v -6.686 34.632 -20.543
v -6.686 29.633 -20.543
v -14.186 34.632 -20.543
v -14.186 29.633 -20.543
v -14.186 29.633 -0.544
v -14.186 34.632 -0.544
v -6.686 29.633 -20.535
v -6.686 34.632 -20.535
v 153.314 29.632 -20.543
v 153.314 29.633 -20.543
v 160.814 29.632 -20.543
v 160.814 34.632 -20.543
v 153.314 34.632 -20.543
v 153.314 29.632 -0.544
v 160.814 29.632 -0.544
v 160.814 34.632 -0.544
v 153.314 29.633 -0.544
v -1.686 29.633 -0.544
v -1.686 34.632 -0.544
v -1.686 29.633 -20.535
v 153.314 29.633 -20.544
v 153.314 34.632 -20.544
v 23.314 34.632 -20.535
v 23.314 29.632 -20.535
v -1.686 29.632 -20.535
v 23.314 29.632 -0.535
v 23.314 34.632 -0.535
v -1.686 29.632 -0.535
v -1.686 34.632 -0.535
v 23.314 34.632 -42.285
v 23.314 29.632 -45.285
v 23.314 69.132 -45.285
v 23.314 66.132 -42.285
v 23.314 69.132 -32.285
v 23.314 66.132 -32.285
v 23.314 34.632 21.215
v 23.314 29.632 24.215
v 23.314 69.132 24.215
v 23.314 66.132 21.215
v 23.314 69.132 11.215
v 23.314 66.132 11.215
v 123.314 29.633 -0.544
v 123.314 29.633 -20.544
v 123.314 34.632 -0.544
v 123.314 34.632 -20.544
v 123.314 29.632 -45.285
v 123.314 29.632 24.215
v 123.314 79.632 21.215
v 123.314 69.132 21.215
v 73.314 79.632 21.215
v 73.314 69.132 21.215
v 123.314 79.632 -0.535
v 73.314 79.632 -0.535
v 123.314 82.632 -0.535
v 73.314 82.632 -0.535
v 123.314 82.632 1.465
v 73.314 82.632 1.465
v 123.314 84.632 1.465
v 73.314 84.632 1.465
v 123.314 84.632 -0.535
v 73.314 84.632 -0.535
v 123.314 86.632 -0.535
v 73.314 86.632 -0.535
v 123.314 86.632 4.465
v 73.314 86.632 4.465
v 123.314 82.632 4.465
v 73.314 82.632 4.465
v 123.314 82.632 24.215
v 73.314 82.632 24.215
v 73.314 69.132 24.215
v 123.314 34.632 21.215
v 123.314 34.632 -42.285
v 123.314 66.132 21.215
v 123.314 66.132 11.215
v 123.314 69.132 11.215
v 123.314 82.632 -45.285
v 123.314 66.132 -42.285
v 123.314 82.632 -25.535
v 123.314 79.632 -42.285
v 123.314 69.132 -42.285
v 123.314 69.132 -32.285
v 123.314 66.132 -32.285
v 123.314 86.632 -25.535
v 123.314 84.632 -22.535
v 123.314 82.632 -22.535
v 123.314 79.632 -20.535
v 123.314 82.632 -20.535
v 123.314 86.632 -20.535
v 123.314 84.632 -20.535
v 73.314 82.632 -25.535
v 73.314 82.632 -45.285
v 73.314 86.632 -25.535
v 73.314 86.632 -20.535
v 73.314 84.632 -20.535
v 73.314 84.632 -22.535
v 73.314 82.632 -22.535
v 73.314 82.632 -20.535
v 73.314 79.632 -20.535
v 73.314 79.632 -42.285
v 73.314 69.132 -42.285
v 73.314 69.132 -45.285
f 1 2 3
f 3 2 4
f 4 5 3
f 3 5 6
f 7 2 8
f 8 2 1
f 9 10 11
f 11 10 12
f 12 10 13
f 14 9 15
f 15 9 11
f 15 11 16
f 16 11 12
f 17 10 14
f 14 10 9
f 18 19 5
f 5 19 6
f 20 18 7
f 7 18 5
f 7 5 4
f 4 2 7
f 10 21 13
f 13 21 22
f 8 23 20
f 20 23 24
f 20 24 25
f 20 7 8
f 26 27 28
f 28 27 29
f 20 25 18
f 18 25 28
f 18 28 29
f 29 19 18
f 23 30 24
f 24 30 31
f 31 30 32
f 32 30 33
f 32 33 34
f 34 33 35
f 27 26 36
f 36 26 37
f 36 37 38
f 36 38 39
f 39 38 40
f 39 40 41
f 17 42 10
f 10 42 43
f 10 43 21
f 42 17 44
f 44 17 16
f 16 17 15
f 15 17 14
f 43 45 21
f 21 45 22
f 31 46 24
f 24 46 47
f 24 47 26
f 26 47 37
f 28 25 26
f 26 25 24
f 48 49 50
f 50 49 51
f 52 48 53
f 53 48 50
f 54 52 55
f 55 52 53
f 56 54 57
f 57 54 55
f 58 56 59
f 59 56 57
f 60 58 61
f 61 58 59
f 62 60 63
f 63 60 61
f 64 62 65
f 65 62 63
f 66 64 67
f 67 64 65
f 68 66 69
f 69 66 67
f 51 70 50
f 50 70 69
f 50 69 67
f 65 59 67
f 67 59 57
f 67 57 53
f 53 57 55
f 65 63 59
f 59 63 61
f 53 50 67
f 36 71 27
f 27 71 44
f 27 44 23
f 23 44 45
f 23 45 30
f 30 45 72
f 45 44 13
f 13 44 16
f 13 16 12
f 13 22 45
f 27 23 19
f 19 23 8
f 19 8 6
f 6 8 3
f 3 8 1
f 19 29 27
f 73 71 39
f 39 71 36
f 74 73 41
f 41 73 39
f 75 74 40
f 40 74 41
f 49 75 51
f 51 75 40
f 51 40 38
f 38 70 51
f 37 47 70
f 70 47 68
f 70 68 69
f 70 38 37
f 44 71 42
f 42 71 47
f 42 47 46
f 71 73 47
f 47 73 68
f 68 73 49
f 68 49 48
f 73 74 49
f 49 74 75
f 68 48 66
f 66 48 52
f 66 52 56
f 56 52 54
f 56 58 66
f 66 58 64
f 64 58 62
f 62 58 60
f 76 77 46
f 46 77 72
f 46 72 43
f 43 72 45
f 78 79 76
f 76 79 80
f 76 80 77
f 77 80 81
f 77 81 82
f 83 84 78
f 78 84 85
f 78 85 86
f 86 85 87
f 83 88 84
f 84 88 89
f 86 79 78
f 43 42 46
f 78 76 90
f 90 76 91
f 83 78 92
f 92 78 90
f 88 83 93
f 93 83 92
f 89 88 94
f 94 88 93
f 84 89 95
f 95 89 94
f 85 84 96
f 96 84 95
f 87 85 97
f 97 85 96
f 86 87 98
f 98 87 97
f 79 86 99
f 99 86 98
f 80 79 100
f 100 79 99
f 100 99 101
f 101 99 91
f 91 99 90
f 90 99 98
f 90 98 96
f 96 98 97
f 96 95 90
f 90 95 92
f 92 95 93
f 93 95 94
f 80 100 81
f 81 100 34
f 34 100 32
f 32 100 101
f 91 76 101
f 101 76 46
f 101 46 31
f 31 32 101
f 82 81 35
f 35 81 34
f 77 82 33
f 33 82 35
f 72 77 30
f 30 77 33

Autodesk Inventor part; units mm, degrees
ref_plane "YZ Plane" through (0, 0, 0) normal (1, 0, 0) x (0, 1, 0)
ref_plane "Piano di lavoro9" through (123.3139, -0.0528, 92.5382) normal (1, 0, 0) x (0, 0, -1)
sketch "Schizzo5" plane through (123.3139, -0.0528, 92.5382) normal (1, 0, 0) x (0, 0, -1)
  line L0 (71.3231, 66.1847) -> (134.8231, 66.1847)
  line L1 (134.8231, 66.1847) -> (134.8231, 34.6847)
  line L2 (134.8231, 34.6847) -> (71.3231, 34.6847)
  line L3 (71.3231, 34.6847) -> (71.3231, 66.1847)
  line L4 (71.3231, 34.6847) -> (81.3231, 34.6847)
  line L5 (81.3231, 34.6847) -> (81.3231, 29.6847)
  line L6 (81.3231, 29.6847) -> (71.3231, 29.6847)
  line L7 (134.8231, 34.6847) -> (124.8231, 34.6847)
  line L8 (124.8231, 34.6847) -> (124.8231, 29.6847)
  line L9 (124.8231, 29.6847) -> (134.8231, 29.6847)
  line L10 (71.3231, 66.1847) -> (81.3231, 66.1847)
  line L11 (81.3231, 66.1847) -> (81.3231, 69.1847)
  line L12 (81.3231, 69.1847) -> (71.3231, 69.1847)
  line L13 (134.8231, 66.1847) -> (124.8231, 66.1847)
  line L14 (124.8231, 66.1847) -> (124.8231, 69.1847)
  line L15 (124.8231, 69.1847) -> (134.8231, 69.1847)
  line L16 (71.3231, 69.1847) -> (68.3231, 69.1847)
  line L17 (68.3231, 69.1847) -> (68.3231, 29.6847)
  line L18 (68.3231, 29.6847) -> (71.3231, 29.6847)
  line L19 (71.3231, 34.6847) -> (71.3231, 66.1847)
  line L20 (134.8231, 69.1847) -> (137.8231, 69.1847)
  line L21 (137.8231, 69.1847) -> (137.8231, 29.6847)
  line L22 (137.8231, 29.6847) -> (134.8231, 29.6847)
  point P0 (92.5382, 0.0528)
  dimension "d18" = 63.5
  dimension "d19" = 31.5
  dimension "d20" = 10
  dimension "d21" = 5
  dimension "d22" = 10
  dimension "d23" = 5
  dimension "d24" = 10
  dimension "d25" = 3
  dimension "d26" = 10
  dimension "d27" = 3
  dimension "d28" = 3
  dimension "d29" = 3
extrude "Estrusione3" add sketch "Schizzo5" against normal blind 100 contours L3 L2 L5 L6 L18 L17 L16 L12 L11 L0 | L14 L15 L20 L21 L22 L9 L8 L2 L1 L0
ref_plane "Piano di lavoro11" through (123.3139, -0.0528, 92.5382) normal (1, 0, 0) x (0, 0, -1)
sketch "Schizzo6" plane through (123.3139, -0.0528, 92.5382) normal (1, 0, 0) x (0, 0, -1)
  line L0 (71.3231, 66.1847) -> (81.3231, 66.1847) projected
  line L1 (81.3231, 34.6847) -> (71.3231, 34.6847) projected
  line L2 (81.3231, 29.6847) -> (81.3231, 34.6847) projected
  line L3 (134.8231, 66.1847) -> (134.8231, 34.6847) projected
  line L4 (71.3231, 34.6847) -> (71.3231, 66.1847) projected
  line L5 (68.3231, 99.6847) -> (137.155, 99.6847)
  line L6 (124.8231, 69.1847) -> (137.8231, 69.1847) projected
  line L7 (137.8231, 69.1847) -> (134.8231, 69.1847)
  line L8 (134.8231, 69.1847) -> (134.8231, 79.6847)
  line L9 (137.8231, 79.6847) -> (137.8231, 69.1847)
  line L10 (71.3231, 69.1847) -> (71.3231, 79.6847)
  line L11 (68.3231, 79.6847) -> (68.3231, 69.1847)
  line L12 (115.0731, 79.6847) -> (134.8231, 79.6847)
  line L13 (137.8231, 79.6847) -> (137.8231, 82.6847)
  line L14 (137.8231, 82.6847) -> (118.0731, 82.6847)
  line L15 (91.0731, 79.6847) -> (71.3231, 79.6847)
  line L16 (68.3231, 79.6847) -> (68.3231, 82.6847)
  line L17 (68.3231, 82.6847) -> (88.0731, 82.6847)
  line L18 (91.0731, 82.6847) -> (93.0731, 82.6847)
  line L19 (93.0731, 82.6847) -> (93.0731, 79.6847)
  line L20 (93.0731, 79.6847) -> (91.0731, 79.6847)
  line L21 (115.0731, 82.6847) -> (113.0731, 82.6847)
  line L22 (113.0731, 82.6847) -> (113.0731, 79.6847)
  line L23 (113.0731, 79.6847) -> (115.0731, 79.6847)
  line L24 (91.0731, 82.6847) -> (91.0731, 84.6847)
  line L25 (88.0731, 82.6847) -> (88.0731, 85.6847)
  line L26 (93.0731, 85.6847) -> (93.0731, 84.6847)
  line L27 (93.0731, 84.6847) -> (91.0731, 84.6847)
  line L28 (113.0731, 84.6847) -> (115.0731, 84.6847)
  line L29 (93.0731, 85.6847) -> (93.0731, 86.6847)
  line L30 (88.0731, 85.6847) -> (88.0731, 86.6847)
  line L31 (88.0731, 86.6847) -> (93.0731, 86.6847)
  line L32 (113.0731, 84.6847) -> (113.0731, 86.6847)
  line L33 (113.0731, 86.6847) -> (118.0731, 86.6847)
  line L34 (118.0731, 86.6847) -> (118.0731, 82.6847)
  line L35 (115.0731, 84.6847) -> (115.0731, 82.6847)
  line L36 (68.3231, 69.1847) -> (81.3231, 69.1847) projected
  line L37 (71.3231, 69.1847) -> (68.3231, 69.1847)
  point P0 (92.5382, 0.0528)
  point P1 (68.3231, 29.6847)
  dimension "d32" = 70
  dimension "d33" = 31.5
  dimension "d35" = 63.5
  dimension "d37" = 3
  dimension "d38" = 10.5
  dimension "d39" = 3
  dimension "d40" = 10.5
  dimension "d43" = 3
  dimension "d44" = 3
  dimension "d45" = 2
  dimension "d46" = 2
  dimension "d47" = 2
  dimension "d50" = 2
  dimension "d54" = 2
  dimension "d55" = 4
  dimension "d56" = 5
  dimension "d57" = 2
  dimension "d58" = 2
  dimension "d59" = 5
extrude "Estrusione4" add sketch "Schizzo6" against normal blind 50
sketch "Schizzo7" plane through (123.3139, 29.6319, -32.2849) normal (0, 0, 1) x (1, 0, 0)
  line L0 (0, 5) -> (0, 0) projected
  line L1 (0, 5) -> (-100, 5) projected
  line L2 (-100, 0) -> (-100, 5) projected
  line L3 (0, 0) -> (-100, 0) projected
  point P0 (-123.3139, -29.6319)
extrude "Estrusione5" add sketch "Schizzo7" along normal blind 47.25
sketch "Schizzo8" plane through (123.3139, -0.0528, 92.5382) normal (1, 0, 0) x (0, 0, -1)
  line L0 (71.3231, 66.1847) -> (71.3231, 34.6847) projected
  line L1 (71.3231, 34.6847) -> (65.0934, 34.6847)
  line L2 (134.8231, 34.6847) -> (141.848, 34.6847)
  line L3 (137.8231, 29.6847) -> (137.8231, 82.6847) projected
  line L4 (68.3231, 29.6847) -> (68.3231, 69.1847) projected
  line L5 (137.8231, 34.6847) -> (68.3231, 34.6847)
  line L6 (68.3231, 34.6847) -> (68.3231, 29.6797)
  line L7 (137.8231, 29.6797) -> (137.8231, 34.6847)
  line L8 (68.3231, 29.6847) -> (137.86, 29.6847)
  line L9 (93.0823, 34.6854) -> (113.0823, 34.6854)
  line L10 (113.0823, 34.6854) -> (113.0823, 29.6854)
  line L11 (113.0823, 29.6854) -> (93.0823, 29.6854)
  line L12 (93.0823, 29.6854) -> (93.0823, 34.6854)
  line L13 (113.0823, 34.6854) -> (93.0823, 34.6854)
  line L14 (93.0823, 34.6854) -> (93.0823, 29.6854)
  line L15 (93.0823, 29.6854) -> (113.0823, 29.6854)
  line L16 (113.0823, 29.6854) -> (113.0823, 34.6854)
  point P0 (92.5382, 0.0528)
  point P1 (103.0823, 32.1854)
  point P2 (103.0823, 32.1854)
  point P3 (113.0823, 34.6847)
  point P4 (93.0823, 34.6847)
  dimension "d82" = 20
  dimension "d83" = 5
extrude "Estrusione6" add sketch "Schizzo8" along normal blind 25 contours L5 L10 L8 L12
sketch "Schizzo9" plane through (23.3139, -0.0528, 92.5382) normal (-1, 0, 0) x (0, 0, 1)
  line L0 (-71.3231, 66.1847) -> (-71.3231, 34.6847) projected
  line L1 (-71.3231, 34.6847) -> (-67.9708, 34.6847)
  line L2 (-68.3231, 82.6847) -> (-68.3231, 29.6847) projected
  line L3 (-68.3231, 29.6847) -> (-137.8231, 29.6847) projected
  line L4 (-68.3231, 34.6847) -> (-137.8231, 34.6847)
  line L5 (-137.8231, 34.6847) -> (-137.8231, 29.6847)
  line L6 (-137.8231, 29.6847) -> (-68.3231, 29.6847)
  line L7 (-68.3231, 29.6847) -> (-68.3231, 34.6847)
  line L8 (-113.0731, 34.6847) -> (-93.0731, 34.6847)
  line L9 (-93.0731, 34.6847) -> (-93.0731, 29.6847)
  line L10 (-93.0731, 29.6847) -> (-113.0731, 29.6847)
  line L11 (-113.0731, 29.6847) -> (-113.0731, 34.6847)
  point P0 (-92.5382, 0.0528)
  point P1 (-103.0731, 32.1847)
  point P2 (-103.0731, 32.1847)
  dimension "d86" = 20
  dimension "d87" = 5
extrude "Estrusione7" add sketch "Schizzo9" along normal blind 25 contours L9 L3 L11 L4
sketch "Schizzo10" plane through (23.3139, 34.6319, 21.2151) normal (0, 1, 0) x (1, 0, 0)
  line L0 (-25, 21.75) -> (-25, 41.75) projected
  line L1 (-25, 31.75) -> (-20, 31.75)
  circle A0 centre (-20, 31.75) radius 0.5
  line L2 (125, 41.7592) -> (125, 21.7592) projected
  line L3 (125, 31.7592) -> (120, 31.7592)
  circle A1 centre (120, 31.7592) radius 0.5
  point P0 (-23.3139, 21.2151)
  dimension "d90" = 5
  dimension "d91" = 1
  dimension "d92" = 5
  dimension "d93" = 1
sketch "Schizzo11" plane through (148.3139, -0.0528, 92.5382) normal (1, 0, 0) x (0, 0, -1)
  line L0 (113.0823, 34.6847) -> (93.0823, 34.6847) projected
  line L1 (113.0823, 29.6854) -> (113.0823, 34.6847) projected
  line L2 (93.0823, 34.6847) -> (113.0823, 34.6847)
  line L3 (113.0823, 34.6847) -> (113.0823, 29.6854)
  line L4 (113.0823, 29.6854) -> (93.0823, 29.6854)
  line L5 (93.0823, 29.6854) -> (93.0823, 34.6847)
  point P0 (92.5382, 0.0528)
extrude "Estrusione8" add sketch "Schizzo11" along normal blind 5
sketch "Schizzo12" plane through (-1.6861, -0.0528, 92.5382) normal (-1, 0, 0) x (0, 0, 1)
  line L0 (-113.0731, 34.6847) -> (-134.8231, 34.6847) projected
  line L1 (-113.0823, 29.6854) -> (-93.0823, 29.6854) projected
  line L2 (-113.0731, 34.6847) -> (-93.0823, 34.6847)
  line L3 (-93.0823, 34.6847) -> (-93.0823, 29.6854)
  line L4 (-93.0823, 29.6854) -> (-113.0731, 29.6854)
  line L5 (-113.0731, 29.6854) -> (-113.0731, 34.6847)
  point P0 (-92.5382, 0.0528)
extrude "Estrusione9" add sketch "Schizzo12" along normal blind 5
sketch "Schizzo14" plane through (153.3139, -0.0528, 92.5382) normal (1, 0, 0) x (0, 0, -1)
  line L0 (93.0823, 34.6847) -> (71.3231, 34.6847) projected
  line L1 (68.3231, 29.6847) -> (137.8231, 29.6847) projected
  line L2 (93.0823, 34.6847) -> (113.0814, 34.6847)
  line L3 (113.0814, 34.6847) -> (113.0814, 29.6847)
  line L4 (113.0814, 29.6847) -> (93.0823, 29.6847)
  line L5 (93.0823, 29.6847) -> (93.0823, 34.6847)
  point P0 (92.5382, 0.0528)
extrude "Estrusione10" add sketch "Schizzo14" along normal blind 7.5
sketch "Schizzo15" plane through (-6.6861, -0.0528, 92.5382) normal (-1, 0, 0) x (0, 0, 1)
  line L0 (-93.0823, 29.6854) -> (-113.0814, 29.6854) projected
  line L1 (-113.0814, 34.6847) -> (-93.0823, 34.6847) projected
  line L2 (-93.0823, 29.6854) -> (-113.0814, 29.6854)
  line L3 (-113.0814, 29.6854) -> (-113.0814, 34.6847)
  line L4 (-113.0814, 34.6847) -> (-93.0823, 34.6847)
  line L5 (-93.0823, 34.6847) -> (-93.0823, 29.6854)
  point P0 (-92.5382, 0.0528)
extrude "Estrusione11" add sketch "Schizzo15" along normal blind 7.5
properties part number "pignat_2_Stampa 3D"
